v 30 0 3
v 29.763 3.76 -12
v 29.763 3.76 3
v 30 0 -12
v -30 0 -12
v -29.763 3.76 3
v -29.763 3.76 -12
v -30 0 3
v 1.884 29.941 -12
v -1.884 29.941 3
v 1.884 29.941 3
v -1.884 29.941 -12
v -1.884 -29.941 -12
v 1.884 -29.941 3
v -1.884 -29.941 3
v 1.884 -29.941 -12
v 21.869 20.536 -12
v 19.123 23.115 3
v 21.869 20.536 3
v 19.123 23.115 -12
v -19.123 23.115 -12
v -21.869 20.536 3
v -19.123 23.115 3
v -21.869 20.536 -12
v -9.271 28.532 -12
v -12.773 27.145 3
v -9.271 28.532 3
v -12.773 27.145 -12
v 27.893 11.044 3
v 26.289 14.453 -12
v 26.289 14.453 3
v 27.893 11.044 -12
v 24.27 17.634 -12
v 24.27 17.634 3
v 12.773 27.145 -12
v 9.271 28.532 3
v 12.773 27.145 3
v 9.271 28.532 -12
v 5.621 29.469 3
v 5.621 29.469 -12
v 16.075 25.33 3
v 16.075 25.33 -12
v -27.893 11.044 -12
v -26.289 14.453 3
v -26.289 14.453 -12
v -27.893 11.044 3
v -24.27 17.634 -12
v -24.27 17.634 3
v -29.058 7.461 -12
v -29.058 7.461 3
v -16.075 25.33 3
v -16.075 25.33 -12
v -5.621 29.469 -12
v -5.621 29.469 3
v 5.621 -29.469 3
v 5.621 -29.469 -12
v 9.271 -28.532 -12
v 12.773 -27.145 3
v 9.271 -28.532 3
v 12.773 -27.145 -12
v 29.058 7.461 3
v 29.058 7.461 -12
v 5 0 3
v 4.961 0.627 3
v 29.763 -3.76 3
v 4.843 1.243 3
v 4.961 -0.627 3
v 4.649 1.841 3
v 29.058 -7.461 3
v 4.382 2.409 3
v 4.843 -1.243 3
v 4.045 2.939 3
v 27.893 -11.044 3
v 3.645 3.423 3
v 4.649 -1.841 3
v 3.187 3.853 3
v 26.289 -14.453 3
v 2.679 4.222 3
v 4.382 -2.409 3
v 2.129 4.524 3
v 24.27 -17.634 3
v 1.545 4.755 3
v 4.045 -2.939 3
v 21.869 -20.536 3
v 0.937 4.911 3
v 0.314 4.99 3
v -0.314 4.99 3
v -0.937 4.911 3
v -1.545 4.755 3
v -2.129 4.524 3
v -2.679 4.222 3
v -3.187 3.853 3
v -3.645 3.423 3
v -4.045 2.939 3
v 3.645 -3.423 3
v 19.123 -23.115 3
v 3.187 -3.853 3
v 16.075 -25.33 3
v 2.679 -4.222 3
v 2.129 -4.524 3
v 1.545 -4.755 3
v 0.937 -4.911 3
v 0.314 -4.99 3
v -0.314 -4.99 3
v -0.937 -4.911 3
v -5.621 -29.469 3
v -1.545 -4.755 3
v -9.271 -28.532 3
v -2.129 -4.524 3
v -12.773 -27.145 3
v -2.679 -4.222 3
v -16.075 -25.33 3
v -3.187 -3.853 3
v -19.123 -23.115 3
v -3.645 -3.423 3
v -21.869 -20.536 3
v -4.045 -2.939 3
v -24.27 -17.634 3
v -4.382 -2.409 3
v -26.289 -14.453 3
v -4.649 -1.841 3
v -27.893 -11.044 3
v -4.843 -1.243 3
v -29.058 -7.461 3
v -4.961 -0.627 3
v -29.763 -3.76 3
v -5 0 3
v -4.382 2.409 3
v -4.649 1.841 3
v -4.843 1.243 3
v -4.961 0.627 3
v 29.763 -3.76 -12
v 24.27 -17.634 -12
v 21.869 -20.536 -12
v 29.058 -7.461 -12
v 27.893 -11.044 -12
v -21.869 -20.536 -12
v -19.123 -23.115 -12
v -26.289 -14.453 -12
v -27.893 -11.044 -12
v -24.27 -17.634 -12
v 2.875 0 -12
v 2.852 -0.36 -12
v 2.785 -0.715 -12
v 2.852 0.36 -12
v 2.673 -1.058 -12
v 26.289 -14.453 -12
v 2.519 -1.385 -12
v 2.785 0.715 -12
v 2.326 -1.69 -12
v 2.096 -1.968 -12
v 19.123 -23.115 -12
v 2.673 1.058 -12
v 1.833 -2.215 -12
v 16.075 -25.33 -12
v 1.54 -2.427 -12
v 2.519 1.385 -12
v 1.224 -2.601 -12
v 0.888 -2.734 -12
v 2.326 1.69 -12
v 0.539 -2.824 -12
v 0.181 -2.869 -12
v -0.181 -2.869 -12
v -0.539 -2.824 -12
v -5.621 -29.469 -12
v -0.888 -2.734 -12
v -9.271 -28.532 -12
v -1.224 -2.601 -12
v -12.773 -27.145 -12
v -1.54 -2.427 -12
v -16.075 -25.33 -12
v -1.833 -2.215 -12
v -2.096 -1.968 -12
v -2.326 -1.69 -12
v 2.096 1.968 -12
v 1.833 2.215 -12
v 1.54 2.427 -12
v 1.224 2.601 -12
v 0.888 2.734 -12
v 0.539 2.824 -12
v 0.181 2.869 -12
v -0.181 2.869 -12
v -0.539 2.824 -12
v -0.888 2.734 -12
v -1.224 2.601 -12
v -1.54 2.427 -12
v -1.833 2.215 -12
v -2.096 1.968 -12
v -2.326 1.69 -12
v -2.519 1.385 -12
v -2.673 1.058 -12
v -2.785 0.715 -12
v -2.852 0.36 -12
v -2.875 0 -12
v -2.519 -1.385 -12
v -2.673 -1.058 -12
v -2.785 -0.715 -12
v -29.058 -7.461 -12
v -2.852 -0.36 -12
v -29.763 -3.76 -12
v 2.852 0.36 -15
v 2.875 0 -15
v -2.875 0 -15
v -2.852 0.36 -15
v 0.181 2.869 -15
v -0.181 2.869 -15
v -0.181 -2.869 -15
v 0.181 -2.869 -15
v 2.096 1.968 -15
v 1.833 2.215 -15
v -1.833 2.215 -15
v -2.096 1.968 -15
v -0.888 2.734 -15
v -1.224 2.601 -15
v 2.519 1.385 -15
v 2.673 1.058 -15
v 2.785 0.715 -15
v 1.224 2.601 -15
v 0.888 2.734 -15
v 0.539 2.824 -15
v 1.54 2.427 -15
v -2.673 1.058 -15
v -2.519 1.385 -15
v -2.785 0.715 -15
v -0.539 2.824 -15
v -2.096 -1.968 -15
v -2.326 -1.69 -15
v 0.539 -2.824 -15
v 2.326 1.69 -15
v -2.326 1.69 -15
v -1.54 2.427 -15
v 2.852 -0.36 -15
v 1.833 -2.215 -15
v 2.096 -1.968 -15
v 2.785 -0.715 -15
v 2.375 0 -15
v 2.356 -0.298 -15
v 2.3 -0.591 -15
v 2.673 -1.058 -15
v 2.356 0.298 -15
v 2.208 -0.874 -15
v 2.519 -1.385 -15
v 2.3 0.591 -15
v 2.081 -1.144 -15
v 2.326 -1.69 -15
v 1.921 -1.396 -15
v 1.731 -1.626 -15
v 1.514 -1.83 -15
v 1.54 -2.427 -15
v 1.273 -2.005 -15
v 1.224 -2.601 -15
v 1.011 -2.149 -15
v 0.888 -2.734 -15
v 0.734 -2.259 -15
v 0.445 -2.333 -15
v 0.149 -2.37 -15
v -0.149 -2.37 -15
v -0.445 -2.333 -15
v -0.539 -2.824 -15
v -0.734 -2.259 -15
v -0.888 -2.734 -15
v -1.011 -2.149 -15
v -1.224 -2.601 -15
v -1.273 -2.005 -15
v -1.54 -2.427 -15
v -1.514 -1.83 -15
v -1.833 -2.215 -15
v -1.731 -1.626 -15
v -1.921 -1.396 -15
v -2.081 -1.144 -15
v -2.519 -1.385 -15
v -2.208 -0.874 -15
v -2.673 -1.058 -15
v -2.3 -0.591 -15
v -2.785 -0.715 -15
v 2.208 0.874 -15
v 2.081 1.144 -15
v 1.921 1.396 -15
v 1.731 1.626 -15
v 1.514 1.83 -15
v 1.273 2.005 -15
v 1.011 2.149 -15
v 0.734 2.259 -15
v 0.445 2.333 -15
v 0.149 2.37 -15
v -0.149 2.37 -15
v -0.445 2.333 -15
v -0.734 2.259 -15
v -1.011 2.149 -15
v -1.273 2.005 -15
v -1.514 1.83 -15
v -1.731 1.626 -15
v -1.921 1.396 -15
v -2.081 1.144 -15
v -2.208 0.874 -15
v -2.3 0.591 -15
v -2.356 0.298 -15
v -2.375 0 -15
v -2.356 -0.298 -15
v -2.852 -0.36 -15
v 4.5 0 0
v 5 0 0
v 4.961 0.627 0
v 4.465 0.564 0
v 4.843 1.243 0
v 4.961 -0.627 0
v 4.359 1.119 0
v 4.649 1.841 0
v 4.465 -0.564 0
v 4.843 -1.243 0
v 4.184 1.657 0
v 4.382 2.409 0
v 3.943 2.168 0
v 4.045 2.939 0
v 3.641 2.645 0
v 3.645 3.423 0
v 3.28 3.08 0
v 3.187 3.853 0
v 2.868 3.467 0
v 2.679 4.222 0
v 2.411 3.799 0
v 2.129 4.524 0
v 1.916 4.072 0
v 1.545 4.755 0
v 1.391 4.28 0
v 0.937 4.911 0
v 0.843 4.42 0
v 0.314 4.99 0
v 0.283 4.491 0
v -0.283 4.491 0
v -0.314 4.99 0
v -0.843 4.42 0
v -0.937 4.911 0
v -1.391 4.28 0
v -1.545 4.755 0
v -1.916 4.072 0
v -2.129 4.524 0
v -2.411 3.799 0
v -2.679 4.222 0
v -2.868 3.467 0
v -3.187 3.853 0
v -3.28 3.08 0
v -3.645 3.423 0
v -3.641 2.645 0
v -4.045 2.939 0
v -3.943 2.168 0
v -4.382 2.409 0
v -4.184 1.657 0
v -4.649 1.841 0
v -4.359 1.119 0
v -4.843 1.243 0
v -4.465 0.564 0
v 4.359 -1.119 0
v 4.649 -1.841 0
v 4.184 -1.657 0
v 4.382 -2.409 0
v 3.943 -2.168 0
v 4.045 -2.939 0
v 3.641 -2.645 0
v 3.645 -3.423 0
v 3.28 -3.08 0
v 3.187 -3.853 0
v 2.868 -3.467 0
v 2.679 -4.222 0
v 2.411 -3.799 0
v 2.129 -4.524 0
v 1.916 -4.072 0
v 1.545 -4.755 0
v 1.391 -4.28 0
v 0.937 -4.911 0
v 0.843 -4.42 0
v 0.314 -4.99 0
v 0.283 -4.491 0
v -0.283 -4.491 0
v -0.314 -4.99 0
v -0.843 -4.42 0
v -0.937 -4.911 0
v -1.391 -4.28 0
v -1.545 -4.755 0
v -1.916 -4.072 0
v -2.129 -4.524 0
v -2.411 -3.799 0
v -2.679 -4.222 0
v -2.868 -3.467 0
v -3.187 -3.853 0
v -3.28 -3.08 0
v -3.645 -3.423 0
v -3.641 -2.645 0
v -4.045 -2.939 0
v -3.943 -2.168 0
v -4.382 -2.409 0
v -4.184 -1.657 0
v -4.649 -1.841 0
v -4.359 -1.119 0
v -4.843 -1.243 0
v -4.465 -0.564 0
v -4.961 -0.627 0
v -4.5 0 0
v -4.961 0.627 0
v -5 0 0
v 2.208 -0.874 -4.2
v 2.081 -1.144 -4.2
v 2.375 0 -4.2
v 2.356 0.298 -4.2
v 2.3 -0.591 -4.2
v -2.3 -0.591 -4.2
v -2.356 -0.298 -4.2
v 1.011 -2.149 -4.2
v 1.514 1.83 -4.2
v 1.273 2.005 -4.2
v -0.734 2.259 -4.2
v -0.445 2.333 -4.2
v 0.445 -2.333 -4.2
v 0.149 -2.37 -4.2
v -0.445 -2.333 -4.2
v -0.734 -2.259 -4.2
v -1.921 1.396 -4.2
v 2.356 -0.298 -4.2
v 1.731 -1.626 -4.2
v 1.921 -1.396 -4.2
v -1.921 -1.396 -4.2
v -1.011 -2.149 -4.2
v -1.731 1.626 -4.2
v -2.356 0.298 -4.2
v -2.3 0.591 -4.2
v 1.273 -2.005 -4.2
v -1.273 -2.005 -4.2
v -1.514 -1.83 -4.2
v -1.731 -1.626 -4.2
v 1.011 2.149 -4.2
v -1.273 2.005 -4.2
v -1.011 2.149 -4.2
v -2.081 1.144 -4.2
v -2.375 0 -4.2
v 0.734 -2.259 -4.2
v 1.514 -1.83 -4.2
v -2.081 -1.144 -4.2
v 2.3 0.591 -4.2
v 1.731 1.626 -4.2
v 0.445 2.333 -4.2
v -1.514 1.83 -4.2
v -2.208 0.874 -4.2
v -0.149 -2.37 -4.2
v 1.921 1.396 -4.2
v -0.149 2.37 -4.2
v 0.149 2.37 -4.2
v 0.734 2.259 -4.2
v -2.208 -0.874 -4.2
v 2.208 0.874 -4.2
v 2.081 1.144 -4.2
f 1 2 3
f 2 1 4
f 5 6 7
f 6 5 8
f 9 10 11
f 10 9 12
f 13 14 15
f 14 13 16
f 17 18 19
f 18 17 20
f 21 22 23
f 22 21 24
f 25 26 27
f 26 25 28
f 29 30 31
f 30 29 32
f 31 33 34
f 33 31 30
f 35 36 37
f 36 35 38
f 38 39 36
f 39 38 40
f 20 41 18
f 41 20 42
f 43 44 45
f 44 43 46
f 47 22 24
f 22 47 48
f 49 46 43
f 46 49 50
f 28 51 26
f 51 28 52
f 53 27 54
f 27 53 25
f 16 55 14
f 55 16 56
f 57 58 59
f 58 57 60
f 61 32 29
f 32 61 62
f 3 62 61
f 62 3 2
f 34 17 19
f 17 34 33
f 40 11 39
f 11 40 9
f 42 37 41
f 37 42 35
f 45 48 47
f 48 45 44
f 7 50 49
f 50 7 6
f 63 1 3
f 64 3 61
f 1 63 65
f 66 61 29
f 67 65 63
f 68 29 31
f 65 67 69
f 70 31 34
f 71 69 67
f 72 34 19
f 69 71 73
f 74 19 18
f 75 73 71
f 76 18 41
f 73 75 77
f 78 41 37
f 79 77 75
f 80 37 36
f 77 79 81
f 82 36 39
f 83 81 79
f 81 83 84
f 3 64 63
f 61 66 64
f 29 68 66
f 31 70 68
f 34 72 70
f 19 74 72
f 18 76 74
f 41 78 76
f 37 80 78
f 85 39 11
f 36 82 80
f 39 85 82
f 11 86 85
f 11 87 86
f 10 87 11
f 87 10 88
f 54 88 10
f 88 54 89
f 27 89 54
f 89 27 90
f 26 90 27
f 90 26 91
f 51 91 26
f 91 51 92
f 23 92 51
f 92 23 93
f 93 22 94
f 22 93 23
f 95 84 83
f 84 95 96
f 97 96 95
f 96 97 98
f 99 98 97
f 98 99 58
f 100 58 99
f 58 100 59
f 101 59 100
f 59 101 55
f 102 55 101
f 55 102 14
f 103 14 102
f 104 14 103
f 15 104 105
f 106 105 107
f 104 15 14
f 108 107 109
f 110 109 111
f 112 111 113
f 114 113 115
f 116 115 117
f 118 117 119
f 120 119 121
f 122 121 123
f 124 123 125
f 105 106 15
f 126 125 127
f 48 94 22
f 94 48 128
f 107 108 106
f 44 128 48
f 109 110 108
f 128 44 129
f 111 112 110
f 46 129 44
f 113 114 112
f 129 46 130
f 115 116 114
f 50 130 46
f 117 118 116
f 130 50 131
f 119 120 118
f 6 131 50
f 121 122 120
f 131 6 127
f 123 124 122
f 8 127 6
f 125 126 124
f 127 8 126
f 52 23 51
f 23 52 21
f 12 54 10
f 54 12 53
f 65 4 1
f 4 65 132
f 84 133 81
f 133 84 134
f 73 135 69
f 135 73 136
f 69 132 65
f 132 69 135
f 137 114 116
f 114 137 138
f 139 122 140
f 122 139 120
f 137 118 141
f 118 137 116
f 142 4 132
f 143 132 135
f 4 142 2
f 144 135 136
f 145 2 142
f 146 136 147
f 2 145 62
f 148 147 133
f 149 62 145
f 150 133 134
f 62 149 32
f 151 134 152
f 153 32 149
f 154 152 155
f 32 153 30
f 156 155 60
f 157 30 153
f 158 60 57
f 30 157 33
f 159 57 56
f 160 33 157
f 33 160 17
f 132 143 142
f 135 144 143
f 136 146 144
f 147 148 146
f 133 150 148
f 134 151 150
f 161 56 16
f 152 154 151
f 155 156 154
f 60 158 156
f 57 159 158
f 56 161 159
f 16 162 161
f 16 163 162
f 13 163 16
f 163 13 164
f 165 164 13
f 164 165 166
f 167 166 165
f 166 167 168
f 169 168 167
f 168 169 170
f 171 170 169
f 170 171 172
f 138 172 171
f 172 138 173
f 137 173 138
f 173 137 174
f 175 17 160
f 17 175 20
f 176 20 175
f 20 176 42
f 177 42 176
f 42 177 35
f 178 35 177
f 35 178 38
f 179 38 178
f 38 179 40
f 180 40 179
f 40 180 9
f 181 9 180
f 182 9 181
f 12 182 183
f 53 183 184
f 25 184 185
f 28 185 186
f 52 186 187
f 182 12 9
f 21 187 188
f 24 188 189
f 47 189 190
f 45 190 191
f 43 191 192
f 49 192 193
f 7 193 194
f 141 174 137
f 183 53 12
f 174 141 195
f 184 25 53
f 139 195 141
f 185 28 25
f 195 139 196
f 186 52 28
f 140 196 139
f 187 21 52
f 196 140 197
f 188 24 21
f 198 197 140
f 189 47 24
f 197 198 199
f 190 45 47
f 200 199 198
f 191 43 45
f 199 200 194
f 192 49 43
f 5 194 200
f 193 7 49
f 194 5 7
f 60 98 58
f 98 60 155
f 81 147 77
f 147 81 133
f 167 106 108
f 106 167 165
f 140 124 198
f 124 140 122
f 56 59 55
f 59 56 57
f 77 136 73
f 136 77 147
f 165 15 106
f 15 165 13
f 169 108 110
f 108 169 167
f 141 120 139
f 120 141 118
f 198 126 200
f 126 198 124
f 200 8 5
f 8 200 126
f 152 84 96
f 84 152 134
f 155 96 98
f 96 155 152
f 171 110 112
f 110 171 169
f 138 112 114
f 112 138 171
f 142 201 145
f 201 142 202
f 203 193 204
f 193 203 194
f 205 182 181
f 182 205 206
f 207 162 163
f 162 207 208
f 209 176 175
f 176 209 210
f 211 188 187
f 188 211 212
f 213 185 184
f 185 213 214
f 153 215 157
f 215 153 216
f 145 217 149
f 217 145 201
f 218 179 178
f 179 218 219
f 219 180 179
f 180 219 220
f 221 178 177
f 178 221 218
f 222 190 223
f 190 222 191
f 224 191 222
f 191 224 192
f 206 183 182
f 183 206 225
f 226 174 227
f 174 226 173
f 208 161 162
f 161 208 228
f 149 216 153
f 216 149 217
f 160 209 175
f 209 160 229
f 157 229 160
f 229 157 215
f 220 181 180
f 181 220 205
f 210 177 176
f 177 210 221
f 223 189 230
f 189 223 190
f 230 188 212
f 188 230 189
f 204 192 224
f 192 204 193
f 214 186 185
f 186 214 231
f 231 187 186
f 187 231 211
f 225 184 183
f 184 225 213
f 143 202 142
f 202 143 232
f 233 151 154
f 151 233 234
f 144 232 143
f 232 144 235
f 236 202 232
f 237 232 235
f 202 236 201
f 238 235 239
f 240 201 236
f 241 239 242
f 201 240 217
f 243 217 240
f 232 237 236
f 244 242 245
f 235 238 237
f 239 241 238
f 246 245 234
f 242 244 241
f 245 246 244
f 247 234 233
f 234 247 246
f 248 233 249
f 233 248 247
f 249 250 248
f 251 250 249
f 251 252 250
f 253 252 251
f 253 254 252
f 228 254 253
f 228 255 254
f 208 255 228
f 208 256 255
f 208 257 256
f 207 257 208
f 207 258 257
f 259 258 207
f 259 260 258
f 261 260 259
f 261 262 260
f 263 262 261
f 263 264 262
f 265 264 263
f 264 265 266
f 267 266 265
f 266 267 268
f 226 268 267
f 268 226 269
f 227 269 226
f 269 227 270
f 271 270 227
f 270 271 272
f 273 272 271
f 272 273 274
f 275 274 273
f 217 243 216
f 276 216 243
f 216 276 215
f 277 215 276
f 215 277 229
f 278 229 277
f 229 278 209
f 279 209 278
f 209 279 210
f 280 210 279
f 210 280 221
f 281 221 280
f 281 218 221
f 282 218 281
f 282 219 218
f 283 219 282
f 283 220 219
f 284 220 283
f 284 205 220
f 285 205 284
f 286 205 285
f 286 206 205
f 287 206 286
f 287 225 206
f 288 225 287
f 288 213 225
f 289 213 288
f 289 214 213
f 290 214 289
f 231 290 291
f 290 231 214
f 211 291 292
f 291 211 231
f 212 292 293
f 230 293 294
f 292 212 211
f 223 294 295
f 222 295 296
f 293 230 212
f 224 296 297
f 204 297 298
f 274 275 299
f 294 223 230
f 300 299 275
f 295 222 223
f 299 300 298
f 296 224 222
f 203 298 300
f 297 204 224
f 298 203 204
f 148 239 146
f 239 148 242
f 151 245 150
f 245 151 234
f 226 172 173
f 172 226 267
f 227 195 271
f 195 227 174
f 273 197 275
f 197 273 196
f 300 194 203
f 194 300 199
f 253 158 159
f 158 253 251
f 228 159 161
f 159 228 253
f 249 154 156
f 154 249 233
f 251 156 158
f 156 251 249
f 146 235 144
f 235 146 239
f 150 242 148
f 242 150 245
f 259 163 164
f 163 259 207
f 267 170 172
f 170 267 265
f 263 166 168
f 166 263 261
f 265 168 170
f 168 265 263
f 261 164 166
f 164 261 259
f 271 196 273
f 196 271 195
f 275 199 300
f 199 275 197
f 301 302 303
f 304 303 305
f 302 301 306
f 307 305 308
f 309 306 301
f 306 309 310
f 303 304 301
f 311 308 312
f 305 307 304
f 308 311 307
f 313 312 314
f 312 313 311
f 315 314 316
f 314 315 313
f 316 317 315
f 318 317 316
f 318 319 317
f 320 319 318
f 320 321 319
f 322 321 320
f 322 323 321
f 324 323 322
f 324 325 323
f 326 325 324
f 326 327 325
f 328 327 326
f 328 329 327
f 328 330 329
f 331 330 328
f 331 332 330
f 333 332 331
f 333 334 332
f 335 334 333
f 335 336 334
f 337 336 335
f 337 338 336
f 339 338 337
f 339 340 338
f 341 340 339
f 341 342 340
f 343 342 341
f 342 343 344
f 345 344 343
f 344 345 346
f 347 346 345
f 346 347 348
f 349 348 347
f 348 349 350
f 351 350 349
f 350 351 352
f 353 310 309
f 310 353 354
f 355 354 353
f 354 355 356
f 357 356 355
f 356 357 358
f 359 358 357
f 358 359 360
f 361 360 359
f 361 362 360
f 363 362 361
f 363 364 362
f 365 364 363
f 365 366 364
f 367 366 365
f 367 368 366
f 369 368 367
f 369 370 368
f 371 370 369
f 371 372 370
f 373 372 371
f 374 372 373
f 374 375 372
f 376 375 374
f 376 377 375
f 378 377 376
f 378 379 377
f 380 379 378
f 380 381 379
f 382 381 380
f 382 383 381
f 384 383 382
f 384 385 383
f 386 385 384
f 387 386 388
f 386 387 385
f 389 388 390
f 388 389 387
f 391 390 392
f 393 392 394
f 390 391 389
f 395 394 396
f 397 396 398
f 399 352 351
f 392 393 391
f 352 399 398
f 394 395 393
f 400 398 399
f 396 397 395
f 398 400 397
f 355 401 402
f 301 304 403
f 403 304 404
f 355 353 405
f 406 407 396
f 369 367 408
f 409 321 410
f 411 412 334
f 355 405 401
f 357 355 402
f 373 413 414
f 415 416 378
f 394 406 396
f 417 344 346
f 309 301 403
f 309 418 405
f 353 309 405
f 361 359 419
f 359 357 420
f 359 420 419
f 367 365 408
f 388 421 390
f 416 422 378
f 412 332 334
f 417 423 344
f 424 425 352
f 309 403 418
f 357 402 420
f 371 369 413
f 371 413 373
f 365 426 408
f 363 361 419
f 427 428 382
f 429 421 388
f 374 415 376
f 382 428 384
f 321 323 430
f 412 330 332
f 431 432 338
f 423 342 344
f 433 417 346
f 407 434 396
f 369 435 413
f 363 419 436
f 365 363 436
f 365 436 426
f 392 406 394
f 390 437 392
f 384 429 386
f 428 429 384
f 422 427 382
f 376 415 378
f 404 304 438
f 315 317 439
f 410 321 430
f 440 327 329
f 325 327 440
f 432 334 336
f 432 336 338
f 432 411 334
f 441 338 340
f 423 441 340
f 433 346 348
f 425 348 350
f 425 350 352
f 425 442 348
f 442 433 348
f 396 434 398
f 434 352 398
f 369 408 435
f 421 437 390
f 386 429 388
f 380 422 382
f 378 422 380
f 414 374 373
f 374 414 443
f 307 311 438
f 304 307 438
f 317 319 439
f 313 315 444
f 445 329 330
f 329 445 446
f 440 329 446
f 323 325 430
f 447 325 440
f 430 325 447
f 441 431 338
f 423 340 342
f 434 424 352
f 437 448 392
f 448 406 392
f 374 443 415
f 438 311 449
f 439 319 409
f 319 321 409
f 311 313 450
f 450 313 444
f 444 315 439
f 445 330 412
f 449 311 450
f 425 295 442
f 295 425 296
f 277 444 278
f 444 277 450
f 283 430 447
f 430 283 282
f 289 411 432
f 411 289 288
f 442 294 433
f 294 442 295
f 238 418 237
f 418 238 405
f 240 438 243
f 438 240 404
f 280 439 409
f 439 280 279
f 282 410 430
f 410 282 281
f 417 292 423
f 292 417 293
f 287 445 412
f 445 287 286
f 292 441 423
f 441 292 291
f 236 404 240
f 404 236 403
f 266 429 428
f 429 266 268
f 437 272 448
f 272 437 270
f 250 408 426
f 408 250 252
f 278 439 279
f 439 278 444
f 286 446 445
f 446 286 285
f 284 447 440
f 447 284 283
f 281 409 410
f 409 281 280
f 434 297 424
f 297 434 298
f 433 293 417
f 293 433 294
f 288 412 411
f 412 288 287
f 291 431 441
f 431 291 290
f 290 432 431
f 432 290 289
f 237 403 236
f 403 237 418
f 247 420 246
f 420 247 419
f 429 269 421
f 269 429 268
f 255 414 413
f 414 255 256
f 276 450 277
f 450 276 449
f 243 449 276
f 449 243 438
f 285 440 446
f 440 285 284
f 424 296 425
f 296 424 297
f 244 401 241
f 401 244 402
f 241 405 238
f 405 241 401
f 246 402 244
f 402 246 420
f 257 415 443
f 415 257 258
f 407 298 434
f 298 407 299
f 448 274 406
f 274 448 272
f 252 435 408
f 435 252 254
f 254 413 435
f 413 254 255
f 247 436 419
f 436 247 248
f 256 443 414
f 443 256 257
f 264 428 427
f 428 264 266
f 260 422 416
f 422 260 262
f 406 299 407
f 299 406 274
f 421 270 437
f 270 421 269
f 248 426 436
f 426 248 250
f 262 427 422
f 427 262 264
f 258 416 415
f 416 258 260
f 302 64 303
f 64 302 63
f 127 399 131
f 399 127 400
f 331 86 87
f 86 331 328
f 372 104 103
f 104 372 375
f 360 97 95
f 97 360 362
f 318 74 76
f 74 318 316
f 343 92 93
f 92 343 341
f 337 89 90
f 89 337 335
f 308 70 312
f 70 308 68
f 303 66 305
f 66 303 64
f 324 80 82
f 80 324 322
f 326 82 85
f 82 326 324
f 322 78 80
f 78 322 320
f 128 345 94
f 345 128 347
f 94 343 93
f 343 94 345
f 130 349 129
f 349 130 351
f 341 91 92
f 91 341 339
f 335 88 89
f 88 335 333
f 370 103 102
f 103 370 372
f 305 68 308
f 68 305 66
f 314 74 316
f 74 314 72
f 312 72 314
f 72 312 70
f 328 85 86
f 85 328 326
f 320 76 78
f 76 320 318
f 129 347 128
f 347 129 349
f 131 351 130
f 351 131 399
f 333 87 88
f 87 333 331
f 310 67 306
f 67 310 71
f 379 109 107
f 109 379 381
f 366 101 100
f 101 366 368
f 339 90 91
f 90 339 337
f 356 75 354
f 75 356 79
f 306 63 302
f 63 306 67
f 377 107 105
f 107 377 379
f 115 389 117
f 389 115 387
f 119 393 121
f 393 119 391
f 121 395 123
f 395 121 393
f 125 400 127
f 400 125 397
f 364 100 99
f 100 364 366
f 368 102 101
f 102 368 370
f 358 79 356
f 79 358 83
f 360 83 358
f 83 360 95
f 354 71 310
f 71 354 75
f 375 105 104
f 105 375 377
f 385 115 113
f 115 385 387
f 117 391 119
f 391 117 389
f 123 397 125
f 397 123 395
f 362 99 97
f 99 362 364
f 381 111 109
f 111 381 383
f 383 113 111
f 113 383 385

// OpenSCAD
$fn = 50;

difference() {
	union() {
		translate(v = [0, 0, -12.0]) {
			cylinder(h = 15, r = 30.0);
		}
		#translate(v = [0, 0, -15.0]) {
			cylinder(h = 15, r = 2.875);
		}
	}
	union() {
		translate(v = [0, 0, 0]) {
			rotate(a = [0, 0, 0]) {
				difference() {
					union() {
						translate(v = [0, 0, -15.0]) {
							cylinder(h = 15, r = 2.25);
						}
						translate(v = [0, 0, -4.2]) {
							cylinder(h = 4.2, r1 = 2.375, r2 = 4.5);
						}
						translate(v = [0, 0, -15.0]) {
							cylinder(h = 15, r = 2.375);
						}
						translate(v = [0, 0, -15.0]) {
							cylinder(h = 15, r = 2.25);
						}
					}
					union();
				}
			}
		}
		#cylinder(h = 3, r = 5.0);
	}
}
